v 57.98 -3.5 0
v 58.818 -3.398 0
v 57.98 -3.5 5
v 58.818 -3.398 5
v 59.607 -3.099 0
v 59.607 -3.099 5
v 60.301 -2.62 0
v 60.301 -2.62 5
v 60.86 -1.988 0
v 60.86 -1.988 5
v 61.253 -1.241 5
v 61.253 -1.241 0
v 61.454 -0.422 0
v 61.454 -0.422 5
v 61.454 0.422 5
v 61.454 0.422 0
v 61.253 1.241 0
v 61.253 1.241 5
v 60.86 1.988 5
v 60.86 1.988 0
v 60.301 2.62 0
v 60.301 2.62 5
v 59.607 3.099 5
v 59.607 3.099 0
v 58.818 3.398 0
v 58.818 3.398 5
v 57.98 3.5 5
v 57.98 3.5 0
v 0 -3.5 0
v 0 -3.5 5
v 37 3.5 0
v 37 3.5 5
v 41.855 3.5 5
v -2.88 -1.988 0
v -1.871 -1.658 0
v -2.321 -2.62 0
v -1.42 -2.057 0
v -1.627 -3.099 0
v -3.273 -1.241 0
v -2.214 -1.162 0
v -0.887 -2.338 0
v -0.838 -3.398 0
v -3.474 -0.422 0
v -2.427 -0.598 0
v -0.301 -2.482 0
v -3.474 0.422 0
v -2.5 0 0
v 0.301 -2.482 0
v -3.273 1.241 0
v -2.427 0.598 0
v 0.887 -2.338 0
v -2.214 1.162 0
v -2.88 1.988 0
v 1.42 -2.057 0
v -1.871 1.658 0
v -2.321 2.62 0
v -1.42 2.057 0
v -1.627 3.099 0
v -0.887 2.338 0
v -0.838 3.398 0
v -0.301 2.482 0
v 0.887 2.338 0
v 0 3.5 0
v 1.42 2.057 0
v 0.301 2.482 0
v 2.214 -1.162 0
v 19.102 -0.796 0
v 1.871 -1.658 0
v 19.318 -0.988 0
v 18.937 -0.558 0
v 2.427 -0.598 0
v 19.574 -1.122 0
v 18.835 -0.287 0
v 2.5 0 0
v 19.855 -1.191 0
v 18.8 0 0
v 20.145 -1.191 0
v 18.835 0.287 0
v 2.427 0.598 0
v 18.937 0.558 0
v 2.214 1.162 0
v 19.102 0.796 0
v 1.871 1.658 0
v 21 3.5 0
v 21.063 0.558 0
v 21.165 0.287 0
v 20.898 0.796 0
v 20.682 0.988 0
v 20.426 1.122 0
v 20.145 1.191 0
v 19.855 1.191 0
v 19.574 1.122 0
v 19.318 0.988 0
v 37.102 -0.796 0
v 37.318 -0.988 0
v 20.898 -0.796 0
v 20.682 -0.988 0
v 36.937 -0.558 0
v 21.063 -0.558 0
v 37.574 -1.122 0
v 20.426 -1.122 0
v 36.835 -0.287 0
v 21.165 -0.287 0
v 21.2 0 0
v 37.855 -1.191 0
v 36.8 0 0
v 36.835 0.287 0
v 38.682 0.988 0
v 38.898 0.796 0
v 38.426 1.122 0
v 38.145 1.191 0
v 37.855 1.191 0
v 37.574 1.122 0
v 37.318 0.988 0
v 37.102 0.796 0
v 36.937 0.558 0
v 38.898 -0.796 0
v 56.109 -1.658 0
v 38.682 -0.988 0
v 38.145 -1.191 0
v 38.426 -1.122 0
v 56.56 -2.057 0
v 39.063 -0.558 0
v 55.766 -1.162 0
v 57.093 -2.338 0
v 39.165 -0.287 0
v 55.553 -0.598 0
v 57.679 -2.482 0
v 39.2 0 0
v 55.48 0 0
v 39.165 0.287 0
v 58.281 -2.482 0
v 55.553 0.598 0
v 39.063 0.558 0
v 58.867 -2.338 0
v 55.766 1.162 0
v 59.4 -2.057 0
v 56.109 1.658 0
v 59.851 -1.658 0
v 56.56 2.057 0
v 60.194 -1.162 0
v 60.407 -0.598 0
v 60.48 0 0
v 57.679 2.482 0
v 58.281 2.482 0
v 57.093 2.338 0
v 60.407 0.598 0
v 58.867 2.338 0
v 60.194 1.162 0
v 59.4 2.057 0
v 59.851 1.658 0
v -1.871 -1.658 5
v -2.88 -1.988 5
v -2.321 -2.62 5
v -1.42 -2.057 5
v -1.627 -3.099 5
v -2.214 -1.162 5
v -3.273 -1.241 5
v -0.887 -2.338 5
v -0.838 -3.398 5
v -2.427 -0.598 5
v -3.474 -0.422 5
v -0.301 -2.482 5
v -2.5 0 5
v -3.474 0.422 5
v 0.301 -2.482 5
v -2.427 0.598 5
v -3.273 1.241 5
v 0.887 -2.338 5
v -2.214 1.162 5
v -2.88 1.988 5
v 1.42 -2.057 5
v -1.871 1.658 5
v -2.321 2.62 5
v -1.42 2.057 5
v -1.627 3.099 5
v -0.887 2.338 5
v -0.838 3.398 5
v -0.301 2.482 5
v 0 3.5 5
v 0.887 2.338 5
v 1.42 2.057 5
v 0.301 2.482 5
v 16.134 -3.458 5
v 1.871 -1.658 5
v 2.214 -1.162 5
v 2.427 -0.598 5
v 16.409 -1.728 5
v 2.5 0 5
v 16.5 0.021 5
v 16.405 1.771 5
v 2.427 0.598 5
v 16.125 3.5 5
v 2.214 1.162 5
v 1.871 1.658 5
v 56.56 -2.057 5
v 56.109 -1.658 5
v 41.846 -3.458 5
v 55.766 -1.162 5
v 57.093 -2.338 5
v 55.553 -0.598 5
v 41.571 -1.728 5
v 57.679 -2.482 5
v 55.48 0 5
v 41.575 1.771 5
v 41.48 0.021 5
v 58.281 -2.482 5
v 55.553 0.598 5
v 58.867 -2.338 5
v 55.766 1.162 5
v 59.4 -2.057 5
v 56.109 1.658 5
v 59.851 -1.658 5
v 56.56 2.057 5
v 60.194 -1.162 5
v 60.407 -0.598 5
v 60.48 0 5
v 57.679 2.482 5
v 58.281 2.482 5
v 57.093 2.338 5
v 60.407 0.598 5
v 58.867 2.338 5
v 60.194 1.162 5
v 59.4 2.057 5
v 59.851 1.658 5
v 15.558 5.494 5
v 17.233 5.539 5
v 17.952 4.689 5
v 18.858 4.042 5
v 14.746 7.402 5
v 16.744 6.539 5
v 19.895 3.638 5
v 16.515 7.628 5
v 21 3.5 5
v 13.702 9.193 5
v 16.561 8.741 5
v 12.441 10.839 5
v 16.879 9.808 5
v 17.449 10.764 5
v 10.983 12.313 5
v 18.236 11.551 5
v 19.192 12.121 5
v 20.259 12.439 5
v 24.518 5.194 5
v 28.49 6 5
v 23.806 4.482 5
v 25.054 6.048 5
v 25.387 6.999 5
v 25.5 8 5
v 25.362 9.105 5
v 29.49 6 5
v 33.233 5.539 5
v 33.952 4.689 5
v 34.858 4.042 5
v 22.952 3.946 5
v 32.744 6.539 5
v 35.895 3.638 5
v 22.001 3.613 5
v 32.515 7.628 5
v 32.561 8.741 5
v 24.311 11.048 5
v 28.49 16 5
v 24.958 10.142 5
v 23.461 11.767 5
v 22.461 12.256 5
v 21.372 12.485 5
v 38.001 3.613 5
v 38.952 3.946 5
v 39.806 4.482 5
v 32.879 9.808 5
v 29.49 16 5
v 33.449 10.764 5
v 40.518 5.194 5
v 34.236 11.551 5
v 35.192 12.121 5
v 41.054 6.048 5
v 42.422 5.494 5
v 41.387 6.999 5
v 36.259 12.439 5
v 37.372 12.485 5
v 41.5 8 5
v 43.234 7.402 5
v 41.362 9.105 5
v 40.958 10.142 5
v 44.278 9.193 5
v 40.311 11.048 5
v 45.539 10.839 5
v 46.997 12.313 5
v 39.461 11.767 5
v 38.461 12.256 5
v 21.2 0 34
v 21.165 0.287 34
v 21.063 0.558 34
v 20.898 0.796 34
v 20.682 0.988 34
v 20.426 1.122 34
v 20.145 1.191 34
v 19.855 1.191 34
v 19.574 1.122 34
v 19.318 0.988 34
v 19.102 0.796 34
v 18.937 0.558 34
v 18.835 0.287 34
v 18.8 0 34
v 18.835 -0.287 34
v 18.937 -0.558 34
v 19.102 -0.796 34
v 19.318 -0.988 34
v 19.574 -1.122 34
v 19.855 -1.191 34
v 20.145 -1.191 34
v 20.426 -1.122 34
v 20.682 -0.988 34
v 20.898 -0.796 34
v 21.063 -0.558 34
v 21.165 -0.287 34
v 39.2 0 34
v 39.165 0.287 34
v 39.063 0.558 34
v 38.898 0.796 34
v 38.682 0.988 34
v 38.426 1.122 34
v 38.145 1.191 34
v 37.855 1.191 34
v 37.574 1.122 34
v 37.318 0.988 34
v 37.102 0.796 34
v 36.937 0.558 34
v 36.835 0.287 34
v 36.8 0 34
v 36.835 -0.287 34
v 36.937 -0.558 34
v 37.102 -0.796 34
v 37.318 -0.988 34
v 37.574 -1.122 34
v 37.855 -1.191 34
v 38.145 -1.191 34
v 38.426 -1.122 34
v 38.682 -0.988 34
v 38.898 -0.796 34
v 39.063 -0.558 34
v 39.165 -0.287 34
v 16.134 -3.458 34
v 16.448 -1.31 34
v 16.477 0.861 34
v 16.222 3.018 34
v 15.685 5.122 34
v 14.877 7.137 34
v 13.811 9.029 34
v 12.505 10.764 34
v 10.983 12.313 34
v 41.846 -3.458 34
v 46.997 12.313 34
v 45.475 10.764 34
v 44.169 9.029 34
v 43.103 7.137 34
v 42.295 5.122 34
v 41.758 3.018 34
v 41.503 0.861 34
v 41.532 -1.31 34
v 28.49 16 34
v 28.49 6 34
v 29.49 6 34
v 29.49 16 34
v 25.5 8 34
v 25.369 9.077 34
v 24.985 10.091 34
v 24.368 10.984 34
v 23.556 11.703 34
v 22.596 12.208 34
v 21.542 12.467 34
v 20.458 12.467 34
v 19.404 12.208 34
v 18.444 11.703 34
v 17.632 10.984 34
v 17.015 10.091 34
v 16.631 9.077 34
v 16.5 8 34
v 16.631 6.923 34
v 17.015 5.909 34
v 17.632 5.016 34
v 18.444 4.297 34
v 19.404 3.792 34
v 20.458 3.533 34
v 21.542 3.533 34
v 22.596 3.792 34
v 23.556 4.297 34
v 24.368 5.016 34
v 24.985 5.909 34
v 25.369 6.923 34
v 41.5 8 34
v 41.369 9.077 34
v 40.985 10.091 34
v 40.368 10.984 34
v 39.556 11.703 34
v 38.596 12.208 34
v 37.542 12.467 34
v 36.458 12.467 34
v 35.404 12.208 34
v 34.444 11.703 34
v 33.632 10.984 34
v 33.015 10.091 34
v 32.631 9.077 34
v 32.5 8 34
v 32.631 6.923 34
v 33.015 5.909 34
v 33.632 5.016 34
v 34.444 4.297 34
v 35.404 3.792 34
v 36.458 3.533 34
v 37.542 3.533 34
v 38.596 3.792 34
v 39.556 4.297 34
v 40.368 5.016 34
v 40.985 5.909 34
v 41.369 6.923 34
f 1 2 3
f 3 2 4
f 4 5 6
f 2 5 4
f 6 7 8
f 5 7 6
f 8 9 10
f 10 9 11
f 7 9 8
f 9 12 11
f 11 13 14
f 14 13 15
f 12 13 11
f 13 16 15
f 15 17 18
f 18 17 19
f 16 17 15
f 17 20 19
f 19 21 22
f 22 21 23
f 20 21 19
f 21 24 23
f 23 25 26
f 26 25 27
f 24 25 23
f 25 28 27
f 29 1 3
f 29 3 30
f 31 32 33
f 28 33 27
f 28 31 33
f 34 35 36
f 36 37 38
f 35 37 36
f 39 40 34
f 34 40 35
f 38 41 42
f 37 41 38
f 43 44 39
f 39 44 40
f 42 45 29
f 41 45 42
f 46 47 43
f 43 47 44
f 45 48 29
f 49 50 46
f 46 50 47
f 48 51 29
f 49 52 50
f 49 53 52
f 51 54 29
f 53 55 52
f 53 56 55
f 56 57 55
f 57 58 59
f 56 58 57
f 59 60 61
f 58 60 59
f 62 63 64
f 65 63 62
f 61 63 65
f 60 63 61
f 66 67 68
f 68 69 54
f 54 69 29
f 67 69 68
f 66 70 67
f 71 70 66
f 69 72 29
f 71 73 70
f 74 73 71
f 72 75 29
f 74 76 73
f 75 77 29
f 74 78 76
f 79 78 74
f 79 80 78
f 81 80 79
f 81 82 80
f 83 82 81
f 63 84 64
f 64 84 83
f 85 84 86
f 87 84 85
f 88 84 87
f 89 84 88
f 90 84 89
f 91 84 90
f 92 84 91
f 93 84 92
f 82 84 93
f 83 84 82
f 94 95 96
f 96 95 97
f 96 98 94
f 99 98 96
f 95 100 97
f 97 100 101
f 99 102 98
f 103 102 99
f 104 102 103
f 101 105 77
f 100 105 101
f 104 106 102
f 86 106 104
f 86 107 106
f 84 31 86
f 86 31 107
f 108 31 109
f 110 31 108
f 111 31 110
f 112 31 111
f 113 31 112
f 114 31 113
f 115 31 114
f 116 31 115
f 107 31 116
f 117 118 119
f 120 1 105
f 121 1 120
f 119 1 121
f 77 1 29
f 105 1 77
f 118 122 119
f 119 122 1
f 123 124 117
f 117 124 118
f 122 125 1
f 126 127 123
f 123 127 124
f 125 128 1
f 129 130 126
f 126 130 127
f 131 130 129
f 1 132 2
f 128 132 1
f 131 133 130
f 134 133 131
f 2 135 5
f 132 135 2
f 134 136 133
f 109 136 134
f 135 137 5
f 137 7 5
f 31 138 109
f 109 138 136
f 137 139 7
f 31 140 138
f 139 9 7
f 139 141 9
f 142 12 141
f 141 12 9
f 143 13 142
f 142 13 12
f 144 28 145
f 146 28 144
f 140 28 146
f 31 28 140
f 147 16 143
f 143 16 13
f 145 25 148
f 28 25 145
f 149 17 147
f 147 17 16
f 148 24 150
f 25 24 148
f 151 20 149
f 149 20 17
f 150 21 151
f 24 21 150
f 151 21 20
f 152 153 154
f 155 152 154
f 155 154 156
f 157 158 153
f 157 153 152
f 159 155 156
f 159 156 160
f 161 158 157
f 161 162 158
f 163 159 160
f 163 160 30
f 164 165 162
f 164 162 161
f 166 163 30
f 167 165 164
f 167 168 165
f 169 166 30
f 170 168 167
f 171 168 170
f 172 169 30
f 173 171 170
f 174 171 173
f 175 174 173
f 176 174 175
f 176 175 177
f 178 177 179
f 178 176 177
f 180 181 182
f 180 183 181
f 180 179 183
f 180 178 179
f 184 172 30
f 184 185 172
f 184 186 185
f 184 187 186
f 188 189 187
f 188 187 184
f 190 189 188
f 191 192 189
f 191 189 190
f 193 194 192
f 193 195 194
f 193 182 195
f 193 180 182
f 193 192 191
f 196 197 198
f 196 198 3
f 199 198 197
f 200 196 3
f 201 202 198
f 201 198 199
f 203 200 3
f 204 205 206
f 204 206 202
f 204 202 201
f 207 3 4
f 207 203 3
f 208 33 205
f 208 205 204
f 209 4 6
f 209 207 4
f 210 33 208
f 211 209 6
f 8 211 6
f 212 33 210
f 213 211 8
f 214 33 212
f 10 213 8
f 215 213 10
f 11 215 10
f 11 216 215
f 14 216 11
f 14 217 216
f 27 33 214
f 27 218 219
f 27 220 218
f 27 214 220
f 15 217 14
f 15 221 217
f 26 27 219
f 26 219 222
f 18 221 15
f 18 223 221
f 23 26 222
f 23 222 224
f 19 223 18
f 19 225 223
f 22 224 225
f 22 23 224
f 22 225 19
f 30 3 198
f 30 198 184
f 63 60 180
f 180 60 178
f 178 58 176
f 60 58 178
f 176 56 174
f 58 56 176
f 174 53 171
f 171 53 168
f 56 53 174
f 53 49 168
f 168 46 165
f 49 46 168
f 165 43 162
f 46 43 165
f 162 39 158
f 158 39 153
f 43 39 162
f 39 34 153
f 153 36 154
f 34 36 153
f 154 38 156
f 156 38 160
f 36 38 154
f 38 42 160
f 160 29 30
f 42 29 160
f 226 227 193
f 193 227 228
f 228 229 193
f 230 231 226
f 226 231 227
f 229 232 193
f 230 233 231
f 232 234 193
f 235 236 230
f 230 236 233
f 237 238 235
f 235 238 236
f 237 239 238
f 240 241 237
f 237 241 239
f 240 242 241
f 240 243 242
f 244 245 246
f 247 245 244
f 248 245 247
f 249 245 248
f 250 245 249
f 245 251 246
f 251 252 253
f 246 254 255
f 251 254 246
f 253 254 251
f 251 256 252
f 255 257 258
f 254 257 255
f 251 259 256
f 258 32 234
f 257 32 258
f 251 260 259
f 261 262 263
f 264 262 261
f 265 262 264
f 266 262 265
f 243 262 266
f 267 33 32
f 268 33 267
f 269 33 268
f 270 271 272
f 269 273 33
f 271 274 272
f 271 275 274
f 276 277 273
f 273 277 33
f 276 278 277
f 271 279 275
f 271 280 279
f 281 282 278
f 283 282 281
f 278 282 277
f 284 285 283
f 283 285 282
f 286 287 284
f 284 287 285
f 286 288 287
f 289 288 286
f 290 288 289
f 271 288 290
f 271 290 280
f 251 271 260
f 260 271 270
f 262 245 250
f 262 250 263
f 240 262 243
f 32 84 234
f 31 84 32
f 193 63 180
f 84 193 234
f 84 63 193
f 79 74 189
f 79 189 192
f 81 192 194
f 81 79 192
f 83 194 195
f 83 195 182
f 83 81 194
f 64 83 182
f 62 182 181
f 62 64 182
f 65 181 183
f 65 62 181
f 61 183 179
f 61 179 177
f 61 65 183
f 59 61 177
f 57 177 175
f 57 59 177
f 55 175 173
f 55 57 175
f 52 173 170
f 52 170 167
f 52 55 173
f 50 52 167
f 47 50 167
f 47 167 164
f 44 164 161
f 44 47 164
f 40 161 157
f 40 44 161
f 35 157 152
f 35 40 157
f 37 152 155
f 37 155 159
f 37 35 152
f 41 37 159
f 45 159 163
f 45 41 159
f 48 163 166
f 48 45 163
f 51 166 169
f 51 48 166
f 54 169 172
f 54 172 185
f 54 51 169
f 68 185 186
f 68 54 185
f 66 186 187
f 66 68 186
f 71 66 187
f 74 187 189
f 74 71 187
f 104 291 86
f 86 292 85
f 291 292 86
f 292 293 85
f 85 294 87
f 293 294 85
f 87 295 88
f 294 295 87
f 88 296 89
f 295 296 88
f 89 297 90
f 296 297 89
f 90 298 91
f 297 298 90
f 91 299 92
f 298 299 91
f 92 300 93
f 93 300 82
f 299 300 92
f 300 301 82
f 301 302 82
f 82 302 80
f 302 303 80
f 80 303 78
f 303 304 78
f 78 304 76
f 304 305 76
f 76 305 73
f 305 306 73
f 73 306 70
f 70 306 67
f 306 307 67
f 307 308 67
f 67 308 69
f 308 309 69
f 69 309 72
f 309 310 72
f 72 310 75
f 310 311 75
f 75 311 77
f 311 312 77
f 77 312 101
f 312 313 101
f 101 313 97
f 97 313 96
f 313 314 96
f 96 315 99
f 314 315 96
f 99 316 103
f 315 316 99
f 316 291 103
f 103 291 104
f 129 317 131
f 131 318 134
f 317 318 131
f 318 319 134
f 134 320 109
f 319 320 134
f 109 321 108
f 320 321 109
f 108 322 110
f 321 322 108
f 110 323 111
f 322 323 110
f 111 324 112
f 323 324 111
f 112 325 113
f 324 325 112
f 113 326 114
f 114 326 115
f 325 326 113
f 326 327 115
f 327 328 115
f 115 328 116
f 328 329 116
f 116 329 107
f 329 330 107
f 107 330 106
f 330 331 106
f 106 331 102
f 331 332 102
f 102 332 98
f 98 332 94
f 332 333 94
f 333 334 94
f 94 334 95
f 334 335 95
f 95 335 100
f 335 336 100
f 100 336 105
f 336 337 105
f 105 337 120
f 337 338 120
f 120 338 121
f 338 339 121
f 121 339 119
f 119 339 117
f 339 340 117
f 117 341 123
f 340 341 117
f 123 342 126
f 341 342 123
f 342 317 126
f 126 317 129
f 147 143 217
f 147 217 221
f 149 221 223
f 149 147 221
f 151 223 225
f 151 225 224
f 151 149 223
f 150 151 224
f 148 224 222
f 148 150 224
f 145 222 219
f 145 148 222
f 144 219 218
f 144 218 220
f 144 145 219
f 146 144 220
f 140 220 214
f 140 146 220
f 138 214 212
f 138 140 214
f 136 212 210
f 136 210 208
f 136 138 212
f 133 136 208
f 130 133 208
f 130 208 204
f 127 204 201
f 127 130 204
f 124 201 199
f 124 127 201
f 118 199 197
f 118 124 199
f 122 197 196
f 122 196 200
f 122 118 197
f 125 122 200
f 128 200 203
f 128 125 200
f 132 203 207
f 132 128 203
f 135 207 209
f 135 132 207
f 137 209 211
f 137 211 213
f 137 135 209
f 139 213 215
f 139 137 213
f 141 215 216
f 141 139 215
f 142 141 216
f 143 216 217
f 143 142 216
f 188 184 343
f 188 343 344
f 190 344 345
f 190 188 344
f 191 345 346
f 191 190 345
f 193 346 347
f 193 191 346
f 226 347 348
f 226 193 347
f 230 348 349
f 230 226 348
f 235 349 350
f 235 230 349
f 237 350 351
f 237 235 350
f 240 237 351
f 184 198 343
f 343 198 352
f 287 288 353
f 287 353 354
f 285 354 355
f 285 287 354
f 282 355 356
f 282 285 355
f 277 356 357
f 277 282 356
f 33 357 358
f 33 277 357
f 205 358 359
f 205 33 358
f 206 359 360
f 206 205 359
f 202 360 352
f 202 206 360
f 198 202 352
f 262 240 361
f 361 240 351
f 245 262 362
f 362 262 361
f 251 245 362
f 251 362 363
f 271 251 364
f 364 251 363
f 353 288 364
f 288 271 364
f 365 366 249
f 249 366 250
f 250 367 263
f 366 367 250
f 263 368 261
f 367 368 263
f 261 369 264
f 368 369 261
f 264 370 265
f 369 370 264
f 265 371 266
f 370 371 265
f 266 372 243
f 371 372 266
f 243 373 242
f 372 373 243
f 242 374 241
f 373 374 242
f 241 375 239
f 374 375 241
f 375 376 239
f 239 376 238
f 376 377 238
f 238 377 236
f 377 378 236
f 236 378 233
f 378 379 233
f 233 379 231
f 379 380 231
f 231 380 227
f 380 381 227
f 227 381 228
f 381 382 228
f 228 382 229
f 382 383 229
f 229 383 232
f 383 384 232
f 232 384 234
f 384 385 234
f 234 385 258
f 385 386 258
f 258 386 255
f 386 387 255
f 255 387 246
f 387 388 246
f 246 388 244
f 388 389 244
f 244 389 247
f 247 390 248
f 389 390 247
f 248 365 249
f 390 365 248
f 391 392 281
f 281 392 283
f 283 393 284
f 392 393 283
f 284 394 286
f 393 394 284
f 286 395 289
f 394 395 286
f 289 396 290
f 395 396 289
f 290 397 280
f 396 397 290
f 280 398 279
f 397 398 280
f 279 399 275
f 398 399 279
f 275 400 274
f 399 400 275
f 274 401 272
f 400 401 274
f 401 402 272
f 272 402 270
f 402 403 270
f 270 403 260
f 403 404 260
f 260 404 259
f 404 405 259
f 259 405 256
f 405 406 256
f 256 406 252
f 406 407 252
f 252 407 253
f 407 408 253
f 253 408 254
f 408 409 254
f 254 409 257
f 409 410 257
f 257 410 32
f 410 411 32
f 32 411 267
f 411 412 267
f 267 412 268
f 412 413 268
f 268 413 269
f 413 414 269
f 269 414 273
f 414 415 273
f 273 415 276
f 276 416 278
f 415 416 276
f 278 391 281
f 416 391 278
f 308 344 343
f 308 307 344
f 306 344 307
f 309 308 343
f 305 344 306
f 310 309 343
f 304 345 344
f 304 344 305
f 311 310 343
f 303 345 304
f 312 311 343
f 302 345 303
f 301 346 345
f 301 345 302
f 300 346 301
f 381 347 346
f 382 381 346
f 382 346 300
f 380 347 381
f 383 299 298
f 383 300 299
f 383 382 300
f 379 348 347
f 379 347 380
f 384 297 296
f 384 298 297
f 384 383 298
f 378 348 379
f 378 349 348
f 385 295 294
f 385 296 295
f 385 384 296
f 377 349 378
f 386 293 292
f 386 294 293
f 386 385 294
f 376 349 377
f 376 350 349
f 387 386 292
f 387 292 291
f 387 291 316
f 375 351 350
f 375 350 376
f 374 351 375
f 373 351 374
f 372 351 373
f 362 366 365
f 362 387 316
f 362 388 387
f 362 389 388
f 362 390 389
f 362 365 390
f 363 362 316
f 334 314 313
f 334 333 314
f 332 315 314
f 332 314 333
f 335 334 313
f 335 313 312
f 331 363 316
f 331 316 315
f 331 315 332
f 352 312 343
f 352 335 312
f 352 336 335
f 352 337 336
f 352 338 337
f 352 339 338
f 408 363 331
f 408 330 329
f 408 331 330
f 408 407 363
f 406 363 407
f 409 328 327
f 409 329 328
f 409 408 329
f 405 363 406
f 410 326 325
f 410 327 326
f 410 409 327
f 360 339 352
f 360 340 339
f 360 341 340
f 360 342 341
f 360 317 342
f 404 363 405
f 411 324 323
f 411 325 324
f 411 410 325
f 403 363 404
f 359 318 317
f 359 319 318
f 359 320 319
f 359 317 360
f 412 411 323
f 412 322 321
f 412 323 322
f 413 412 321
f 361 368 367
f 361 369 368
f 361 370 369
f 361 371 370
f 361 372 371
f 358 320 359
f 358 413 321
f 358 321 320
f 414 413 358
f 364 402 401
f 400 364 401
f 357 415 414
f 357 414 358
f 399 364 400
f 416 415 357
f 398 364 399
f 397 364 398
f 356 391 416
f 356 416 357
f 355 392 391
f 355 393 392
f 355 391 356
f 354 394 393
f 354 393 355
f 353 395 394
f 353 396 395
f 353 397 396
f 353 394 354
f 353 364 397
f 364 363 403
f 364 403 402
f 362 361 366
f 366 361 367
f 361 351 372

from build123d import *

# Parameters (mm, degrees)
SKETCH_R        = 2.5
PAD_DEPTH       = 5
PAD001_DEPTH    = 29
SKETCH002_R     = 1.2
POCKET_DEPTH    = 34.001
SKETCH004_R     = 4.5
POCKET002_DEPTH = 34.001


with BuildPart() as part:
    # Sketch → Pad (new body)
    with BuildSketch(Plane.XY):
        with BuildLine():
            ThreePointArc((0, 3.5), (-3.5, 0), (0, -3.5))
            Line((57.98, -3.5), (0, -3.5))
            ThreePointArc((57.98, -3.5), (61.48, 0), (57.98, 3.5))
            Line((0, 3.5), (57.98, 3.5))
        make_face()
        Circle(SKETCH_R, mode=Mode.SUBTRACT)
        with Locations((57.98, 0)):
            Circle(SKETCH_R, mode=Mode.SUBTRACT)
    extrude(amount=PAD_DEPTH)

    # Sketch001 (on Face8 of Pad) → Pad001 (join)
    with BuildSketch(Plane.XY.offset(5)):
        with BuildLine():
            Line((29.489935, 16), (29.489935, 6))
            Line((28.489935, 6), (29.489935, 6))
            Line((28.489935, 6), (28.489935, 15.99995))
            Line((28.489935, 15.99995), (10.983499, 12.313113))
            ThreePointArc((16.133505, -3.458326), (15.684946, 5.121763), (10.983499, 12.313113))
            Line((16.133505, -3.458326), (41.846495, -3.458326))
            ThreePointArc((46.996509, 12.31312), (42.295055, 5.121768), (41.846495, -3.458326))
            Line((46.996509, 12.31312), (29.489935, 16))
        make_face()
    extrude(amount=PAD001_DEPTH)

    # Sketch002 (on Face18 of Pad001) → Pocket (cut, through all)
    with BuildSketch(Plane.XY.offset(34)):
        with Locations((20, 0)):
            Circle(SKETCH002_R)
        with Locations((38, 0)):
            Circle(SKETCH002_R)
    extrude(amount=-POCKET_DEPTH, mode=Mode.SUBTRACT)

    # Sketch004 → Pocket002 (cut, through all)
    with BuildSketch(Plane.XY.offset(34)):
        with Locations((21, 8)):
            Circle(SKETCH004_R)
        with Locations((37, 8)):
            Circle(SKETCH004_R)
    extrude(amount=-POCKET002_DEPTH, mode=Mode.SUBTRACT)


solid = part.part
